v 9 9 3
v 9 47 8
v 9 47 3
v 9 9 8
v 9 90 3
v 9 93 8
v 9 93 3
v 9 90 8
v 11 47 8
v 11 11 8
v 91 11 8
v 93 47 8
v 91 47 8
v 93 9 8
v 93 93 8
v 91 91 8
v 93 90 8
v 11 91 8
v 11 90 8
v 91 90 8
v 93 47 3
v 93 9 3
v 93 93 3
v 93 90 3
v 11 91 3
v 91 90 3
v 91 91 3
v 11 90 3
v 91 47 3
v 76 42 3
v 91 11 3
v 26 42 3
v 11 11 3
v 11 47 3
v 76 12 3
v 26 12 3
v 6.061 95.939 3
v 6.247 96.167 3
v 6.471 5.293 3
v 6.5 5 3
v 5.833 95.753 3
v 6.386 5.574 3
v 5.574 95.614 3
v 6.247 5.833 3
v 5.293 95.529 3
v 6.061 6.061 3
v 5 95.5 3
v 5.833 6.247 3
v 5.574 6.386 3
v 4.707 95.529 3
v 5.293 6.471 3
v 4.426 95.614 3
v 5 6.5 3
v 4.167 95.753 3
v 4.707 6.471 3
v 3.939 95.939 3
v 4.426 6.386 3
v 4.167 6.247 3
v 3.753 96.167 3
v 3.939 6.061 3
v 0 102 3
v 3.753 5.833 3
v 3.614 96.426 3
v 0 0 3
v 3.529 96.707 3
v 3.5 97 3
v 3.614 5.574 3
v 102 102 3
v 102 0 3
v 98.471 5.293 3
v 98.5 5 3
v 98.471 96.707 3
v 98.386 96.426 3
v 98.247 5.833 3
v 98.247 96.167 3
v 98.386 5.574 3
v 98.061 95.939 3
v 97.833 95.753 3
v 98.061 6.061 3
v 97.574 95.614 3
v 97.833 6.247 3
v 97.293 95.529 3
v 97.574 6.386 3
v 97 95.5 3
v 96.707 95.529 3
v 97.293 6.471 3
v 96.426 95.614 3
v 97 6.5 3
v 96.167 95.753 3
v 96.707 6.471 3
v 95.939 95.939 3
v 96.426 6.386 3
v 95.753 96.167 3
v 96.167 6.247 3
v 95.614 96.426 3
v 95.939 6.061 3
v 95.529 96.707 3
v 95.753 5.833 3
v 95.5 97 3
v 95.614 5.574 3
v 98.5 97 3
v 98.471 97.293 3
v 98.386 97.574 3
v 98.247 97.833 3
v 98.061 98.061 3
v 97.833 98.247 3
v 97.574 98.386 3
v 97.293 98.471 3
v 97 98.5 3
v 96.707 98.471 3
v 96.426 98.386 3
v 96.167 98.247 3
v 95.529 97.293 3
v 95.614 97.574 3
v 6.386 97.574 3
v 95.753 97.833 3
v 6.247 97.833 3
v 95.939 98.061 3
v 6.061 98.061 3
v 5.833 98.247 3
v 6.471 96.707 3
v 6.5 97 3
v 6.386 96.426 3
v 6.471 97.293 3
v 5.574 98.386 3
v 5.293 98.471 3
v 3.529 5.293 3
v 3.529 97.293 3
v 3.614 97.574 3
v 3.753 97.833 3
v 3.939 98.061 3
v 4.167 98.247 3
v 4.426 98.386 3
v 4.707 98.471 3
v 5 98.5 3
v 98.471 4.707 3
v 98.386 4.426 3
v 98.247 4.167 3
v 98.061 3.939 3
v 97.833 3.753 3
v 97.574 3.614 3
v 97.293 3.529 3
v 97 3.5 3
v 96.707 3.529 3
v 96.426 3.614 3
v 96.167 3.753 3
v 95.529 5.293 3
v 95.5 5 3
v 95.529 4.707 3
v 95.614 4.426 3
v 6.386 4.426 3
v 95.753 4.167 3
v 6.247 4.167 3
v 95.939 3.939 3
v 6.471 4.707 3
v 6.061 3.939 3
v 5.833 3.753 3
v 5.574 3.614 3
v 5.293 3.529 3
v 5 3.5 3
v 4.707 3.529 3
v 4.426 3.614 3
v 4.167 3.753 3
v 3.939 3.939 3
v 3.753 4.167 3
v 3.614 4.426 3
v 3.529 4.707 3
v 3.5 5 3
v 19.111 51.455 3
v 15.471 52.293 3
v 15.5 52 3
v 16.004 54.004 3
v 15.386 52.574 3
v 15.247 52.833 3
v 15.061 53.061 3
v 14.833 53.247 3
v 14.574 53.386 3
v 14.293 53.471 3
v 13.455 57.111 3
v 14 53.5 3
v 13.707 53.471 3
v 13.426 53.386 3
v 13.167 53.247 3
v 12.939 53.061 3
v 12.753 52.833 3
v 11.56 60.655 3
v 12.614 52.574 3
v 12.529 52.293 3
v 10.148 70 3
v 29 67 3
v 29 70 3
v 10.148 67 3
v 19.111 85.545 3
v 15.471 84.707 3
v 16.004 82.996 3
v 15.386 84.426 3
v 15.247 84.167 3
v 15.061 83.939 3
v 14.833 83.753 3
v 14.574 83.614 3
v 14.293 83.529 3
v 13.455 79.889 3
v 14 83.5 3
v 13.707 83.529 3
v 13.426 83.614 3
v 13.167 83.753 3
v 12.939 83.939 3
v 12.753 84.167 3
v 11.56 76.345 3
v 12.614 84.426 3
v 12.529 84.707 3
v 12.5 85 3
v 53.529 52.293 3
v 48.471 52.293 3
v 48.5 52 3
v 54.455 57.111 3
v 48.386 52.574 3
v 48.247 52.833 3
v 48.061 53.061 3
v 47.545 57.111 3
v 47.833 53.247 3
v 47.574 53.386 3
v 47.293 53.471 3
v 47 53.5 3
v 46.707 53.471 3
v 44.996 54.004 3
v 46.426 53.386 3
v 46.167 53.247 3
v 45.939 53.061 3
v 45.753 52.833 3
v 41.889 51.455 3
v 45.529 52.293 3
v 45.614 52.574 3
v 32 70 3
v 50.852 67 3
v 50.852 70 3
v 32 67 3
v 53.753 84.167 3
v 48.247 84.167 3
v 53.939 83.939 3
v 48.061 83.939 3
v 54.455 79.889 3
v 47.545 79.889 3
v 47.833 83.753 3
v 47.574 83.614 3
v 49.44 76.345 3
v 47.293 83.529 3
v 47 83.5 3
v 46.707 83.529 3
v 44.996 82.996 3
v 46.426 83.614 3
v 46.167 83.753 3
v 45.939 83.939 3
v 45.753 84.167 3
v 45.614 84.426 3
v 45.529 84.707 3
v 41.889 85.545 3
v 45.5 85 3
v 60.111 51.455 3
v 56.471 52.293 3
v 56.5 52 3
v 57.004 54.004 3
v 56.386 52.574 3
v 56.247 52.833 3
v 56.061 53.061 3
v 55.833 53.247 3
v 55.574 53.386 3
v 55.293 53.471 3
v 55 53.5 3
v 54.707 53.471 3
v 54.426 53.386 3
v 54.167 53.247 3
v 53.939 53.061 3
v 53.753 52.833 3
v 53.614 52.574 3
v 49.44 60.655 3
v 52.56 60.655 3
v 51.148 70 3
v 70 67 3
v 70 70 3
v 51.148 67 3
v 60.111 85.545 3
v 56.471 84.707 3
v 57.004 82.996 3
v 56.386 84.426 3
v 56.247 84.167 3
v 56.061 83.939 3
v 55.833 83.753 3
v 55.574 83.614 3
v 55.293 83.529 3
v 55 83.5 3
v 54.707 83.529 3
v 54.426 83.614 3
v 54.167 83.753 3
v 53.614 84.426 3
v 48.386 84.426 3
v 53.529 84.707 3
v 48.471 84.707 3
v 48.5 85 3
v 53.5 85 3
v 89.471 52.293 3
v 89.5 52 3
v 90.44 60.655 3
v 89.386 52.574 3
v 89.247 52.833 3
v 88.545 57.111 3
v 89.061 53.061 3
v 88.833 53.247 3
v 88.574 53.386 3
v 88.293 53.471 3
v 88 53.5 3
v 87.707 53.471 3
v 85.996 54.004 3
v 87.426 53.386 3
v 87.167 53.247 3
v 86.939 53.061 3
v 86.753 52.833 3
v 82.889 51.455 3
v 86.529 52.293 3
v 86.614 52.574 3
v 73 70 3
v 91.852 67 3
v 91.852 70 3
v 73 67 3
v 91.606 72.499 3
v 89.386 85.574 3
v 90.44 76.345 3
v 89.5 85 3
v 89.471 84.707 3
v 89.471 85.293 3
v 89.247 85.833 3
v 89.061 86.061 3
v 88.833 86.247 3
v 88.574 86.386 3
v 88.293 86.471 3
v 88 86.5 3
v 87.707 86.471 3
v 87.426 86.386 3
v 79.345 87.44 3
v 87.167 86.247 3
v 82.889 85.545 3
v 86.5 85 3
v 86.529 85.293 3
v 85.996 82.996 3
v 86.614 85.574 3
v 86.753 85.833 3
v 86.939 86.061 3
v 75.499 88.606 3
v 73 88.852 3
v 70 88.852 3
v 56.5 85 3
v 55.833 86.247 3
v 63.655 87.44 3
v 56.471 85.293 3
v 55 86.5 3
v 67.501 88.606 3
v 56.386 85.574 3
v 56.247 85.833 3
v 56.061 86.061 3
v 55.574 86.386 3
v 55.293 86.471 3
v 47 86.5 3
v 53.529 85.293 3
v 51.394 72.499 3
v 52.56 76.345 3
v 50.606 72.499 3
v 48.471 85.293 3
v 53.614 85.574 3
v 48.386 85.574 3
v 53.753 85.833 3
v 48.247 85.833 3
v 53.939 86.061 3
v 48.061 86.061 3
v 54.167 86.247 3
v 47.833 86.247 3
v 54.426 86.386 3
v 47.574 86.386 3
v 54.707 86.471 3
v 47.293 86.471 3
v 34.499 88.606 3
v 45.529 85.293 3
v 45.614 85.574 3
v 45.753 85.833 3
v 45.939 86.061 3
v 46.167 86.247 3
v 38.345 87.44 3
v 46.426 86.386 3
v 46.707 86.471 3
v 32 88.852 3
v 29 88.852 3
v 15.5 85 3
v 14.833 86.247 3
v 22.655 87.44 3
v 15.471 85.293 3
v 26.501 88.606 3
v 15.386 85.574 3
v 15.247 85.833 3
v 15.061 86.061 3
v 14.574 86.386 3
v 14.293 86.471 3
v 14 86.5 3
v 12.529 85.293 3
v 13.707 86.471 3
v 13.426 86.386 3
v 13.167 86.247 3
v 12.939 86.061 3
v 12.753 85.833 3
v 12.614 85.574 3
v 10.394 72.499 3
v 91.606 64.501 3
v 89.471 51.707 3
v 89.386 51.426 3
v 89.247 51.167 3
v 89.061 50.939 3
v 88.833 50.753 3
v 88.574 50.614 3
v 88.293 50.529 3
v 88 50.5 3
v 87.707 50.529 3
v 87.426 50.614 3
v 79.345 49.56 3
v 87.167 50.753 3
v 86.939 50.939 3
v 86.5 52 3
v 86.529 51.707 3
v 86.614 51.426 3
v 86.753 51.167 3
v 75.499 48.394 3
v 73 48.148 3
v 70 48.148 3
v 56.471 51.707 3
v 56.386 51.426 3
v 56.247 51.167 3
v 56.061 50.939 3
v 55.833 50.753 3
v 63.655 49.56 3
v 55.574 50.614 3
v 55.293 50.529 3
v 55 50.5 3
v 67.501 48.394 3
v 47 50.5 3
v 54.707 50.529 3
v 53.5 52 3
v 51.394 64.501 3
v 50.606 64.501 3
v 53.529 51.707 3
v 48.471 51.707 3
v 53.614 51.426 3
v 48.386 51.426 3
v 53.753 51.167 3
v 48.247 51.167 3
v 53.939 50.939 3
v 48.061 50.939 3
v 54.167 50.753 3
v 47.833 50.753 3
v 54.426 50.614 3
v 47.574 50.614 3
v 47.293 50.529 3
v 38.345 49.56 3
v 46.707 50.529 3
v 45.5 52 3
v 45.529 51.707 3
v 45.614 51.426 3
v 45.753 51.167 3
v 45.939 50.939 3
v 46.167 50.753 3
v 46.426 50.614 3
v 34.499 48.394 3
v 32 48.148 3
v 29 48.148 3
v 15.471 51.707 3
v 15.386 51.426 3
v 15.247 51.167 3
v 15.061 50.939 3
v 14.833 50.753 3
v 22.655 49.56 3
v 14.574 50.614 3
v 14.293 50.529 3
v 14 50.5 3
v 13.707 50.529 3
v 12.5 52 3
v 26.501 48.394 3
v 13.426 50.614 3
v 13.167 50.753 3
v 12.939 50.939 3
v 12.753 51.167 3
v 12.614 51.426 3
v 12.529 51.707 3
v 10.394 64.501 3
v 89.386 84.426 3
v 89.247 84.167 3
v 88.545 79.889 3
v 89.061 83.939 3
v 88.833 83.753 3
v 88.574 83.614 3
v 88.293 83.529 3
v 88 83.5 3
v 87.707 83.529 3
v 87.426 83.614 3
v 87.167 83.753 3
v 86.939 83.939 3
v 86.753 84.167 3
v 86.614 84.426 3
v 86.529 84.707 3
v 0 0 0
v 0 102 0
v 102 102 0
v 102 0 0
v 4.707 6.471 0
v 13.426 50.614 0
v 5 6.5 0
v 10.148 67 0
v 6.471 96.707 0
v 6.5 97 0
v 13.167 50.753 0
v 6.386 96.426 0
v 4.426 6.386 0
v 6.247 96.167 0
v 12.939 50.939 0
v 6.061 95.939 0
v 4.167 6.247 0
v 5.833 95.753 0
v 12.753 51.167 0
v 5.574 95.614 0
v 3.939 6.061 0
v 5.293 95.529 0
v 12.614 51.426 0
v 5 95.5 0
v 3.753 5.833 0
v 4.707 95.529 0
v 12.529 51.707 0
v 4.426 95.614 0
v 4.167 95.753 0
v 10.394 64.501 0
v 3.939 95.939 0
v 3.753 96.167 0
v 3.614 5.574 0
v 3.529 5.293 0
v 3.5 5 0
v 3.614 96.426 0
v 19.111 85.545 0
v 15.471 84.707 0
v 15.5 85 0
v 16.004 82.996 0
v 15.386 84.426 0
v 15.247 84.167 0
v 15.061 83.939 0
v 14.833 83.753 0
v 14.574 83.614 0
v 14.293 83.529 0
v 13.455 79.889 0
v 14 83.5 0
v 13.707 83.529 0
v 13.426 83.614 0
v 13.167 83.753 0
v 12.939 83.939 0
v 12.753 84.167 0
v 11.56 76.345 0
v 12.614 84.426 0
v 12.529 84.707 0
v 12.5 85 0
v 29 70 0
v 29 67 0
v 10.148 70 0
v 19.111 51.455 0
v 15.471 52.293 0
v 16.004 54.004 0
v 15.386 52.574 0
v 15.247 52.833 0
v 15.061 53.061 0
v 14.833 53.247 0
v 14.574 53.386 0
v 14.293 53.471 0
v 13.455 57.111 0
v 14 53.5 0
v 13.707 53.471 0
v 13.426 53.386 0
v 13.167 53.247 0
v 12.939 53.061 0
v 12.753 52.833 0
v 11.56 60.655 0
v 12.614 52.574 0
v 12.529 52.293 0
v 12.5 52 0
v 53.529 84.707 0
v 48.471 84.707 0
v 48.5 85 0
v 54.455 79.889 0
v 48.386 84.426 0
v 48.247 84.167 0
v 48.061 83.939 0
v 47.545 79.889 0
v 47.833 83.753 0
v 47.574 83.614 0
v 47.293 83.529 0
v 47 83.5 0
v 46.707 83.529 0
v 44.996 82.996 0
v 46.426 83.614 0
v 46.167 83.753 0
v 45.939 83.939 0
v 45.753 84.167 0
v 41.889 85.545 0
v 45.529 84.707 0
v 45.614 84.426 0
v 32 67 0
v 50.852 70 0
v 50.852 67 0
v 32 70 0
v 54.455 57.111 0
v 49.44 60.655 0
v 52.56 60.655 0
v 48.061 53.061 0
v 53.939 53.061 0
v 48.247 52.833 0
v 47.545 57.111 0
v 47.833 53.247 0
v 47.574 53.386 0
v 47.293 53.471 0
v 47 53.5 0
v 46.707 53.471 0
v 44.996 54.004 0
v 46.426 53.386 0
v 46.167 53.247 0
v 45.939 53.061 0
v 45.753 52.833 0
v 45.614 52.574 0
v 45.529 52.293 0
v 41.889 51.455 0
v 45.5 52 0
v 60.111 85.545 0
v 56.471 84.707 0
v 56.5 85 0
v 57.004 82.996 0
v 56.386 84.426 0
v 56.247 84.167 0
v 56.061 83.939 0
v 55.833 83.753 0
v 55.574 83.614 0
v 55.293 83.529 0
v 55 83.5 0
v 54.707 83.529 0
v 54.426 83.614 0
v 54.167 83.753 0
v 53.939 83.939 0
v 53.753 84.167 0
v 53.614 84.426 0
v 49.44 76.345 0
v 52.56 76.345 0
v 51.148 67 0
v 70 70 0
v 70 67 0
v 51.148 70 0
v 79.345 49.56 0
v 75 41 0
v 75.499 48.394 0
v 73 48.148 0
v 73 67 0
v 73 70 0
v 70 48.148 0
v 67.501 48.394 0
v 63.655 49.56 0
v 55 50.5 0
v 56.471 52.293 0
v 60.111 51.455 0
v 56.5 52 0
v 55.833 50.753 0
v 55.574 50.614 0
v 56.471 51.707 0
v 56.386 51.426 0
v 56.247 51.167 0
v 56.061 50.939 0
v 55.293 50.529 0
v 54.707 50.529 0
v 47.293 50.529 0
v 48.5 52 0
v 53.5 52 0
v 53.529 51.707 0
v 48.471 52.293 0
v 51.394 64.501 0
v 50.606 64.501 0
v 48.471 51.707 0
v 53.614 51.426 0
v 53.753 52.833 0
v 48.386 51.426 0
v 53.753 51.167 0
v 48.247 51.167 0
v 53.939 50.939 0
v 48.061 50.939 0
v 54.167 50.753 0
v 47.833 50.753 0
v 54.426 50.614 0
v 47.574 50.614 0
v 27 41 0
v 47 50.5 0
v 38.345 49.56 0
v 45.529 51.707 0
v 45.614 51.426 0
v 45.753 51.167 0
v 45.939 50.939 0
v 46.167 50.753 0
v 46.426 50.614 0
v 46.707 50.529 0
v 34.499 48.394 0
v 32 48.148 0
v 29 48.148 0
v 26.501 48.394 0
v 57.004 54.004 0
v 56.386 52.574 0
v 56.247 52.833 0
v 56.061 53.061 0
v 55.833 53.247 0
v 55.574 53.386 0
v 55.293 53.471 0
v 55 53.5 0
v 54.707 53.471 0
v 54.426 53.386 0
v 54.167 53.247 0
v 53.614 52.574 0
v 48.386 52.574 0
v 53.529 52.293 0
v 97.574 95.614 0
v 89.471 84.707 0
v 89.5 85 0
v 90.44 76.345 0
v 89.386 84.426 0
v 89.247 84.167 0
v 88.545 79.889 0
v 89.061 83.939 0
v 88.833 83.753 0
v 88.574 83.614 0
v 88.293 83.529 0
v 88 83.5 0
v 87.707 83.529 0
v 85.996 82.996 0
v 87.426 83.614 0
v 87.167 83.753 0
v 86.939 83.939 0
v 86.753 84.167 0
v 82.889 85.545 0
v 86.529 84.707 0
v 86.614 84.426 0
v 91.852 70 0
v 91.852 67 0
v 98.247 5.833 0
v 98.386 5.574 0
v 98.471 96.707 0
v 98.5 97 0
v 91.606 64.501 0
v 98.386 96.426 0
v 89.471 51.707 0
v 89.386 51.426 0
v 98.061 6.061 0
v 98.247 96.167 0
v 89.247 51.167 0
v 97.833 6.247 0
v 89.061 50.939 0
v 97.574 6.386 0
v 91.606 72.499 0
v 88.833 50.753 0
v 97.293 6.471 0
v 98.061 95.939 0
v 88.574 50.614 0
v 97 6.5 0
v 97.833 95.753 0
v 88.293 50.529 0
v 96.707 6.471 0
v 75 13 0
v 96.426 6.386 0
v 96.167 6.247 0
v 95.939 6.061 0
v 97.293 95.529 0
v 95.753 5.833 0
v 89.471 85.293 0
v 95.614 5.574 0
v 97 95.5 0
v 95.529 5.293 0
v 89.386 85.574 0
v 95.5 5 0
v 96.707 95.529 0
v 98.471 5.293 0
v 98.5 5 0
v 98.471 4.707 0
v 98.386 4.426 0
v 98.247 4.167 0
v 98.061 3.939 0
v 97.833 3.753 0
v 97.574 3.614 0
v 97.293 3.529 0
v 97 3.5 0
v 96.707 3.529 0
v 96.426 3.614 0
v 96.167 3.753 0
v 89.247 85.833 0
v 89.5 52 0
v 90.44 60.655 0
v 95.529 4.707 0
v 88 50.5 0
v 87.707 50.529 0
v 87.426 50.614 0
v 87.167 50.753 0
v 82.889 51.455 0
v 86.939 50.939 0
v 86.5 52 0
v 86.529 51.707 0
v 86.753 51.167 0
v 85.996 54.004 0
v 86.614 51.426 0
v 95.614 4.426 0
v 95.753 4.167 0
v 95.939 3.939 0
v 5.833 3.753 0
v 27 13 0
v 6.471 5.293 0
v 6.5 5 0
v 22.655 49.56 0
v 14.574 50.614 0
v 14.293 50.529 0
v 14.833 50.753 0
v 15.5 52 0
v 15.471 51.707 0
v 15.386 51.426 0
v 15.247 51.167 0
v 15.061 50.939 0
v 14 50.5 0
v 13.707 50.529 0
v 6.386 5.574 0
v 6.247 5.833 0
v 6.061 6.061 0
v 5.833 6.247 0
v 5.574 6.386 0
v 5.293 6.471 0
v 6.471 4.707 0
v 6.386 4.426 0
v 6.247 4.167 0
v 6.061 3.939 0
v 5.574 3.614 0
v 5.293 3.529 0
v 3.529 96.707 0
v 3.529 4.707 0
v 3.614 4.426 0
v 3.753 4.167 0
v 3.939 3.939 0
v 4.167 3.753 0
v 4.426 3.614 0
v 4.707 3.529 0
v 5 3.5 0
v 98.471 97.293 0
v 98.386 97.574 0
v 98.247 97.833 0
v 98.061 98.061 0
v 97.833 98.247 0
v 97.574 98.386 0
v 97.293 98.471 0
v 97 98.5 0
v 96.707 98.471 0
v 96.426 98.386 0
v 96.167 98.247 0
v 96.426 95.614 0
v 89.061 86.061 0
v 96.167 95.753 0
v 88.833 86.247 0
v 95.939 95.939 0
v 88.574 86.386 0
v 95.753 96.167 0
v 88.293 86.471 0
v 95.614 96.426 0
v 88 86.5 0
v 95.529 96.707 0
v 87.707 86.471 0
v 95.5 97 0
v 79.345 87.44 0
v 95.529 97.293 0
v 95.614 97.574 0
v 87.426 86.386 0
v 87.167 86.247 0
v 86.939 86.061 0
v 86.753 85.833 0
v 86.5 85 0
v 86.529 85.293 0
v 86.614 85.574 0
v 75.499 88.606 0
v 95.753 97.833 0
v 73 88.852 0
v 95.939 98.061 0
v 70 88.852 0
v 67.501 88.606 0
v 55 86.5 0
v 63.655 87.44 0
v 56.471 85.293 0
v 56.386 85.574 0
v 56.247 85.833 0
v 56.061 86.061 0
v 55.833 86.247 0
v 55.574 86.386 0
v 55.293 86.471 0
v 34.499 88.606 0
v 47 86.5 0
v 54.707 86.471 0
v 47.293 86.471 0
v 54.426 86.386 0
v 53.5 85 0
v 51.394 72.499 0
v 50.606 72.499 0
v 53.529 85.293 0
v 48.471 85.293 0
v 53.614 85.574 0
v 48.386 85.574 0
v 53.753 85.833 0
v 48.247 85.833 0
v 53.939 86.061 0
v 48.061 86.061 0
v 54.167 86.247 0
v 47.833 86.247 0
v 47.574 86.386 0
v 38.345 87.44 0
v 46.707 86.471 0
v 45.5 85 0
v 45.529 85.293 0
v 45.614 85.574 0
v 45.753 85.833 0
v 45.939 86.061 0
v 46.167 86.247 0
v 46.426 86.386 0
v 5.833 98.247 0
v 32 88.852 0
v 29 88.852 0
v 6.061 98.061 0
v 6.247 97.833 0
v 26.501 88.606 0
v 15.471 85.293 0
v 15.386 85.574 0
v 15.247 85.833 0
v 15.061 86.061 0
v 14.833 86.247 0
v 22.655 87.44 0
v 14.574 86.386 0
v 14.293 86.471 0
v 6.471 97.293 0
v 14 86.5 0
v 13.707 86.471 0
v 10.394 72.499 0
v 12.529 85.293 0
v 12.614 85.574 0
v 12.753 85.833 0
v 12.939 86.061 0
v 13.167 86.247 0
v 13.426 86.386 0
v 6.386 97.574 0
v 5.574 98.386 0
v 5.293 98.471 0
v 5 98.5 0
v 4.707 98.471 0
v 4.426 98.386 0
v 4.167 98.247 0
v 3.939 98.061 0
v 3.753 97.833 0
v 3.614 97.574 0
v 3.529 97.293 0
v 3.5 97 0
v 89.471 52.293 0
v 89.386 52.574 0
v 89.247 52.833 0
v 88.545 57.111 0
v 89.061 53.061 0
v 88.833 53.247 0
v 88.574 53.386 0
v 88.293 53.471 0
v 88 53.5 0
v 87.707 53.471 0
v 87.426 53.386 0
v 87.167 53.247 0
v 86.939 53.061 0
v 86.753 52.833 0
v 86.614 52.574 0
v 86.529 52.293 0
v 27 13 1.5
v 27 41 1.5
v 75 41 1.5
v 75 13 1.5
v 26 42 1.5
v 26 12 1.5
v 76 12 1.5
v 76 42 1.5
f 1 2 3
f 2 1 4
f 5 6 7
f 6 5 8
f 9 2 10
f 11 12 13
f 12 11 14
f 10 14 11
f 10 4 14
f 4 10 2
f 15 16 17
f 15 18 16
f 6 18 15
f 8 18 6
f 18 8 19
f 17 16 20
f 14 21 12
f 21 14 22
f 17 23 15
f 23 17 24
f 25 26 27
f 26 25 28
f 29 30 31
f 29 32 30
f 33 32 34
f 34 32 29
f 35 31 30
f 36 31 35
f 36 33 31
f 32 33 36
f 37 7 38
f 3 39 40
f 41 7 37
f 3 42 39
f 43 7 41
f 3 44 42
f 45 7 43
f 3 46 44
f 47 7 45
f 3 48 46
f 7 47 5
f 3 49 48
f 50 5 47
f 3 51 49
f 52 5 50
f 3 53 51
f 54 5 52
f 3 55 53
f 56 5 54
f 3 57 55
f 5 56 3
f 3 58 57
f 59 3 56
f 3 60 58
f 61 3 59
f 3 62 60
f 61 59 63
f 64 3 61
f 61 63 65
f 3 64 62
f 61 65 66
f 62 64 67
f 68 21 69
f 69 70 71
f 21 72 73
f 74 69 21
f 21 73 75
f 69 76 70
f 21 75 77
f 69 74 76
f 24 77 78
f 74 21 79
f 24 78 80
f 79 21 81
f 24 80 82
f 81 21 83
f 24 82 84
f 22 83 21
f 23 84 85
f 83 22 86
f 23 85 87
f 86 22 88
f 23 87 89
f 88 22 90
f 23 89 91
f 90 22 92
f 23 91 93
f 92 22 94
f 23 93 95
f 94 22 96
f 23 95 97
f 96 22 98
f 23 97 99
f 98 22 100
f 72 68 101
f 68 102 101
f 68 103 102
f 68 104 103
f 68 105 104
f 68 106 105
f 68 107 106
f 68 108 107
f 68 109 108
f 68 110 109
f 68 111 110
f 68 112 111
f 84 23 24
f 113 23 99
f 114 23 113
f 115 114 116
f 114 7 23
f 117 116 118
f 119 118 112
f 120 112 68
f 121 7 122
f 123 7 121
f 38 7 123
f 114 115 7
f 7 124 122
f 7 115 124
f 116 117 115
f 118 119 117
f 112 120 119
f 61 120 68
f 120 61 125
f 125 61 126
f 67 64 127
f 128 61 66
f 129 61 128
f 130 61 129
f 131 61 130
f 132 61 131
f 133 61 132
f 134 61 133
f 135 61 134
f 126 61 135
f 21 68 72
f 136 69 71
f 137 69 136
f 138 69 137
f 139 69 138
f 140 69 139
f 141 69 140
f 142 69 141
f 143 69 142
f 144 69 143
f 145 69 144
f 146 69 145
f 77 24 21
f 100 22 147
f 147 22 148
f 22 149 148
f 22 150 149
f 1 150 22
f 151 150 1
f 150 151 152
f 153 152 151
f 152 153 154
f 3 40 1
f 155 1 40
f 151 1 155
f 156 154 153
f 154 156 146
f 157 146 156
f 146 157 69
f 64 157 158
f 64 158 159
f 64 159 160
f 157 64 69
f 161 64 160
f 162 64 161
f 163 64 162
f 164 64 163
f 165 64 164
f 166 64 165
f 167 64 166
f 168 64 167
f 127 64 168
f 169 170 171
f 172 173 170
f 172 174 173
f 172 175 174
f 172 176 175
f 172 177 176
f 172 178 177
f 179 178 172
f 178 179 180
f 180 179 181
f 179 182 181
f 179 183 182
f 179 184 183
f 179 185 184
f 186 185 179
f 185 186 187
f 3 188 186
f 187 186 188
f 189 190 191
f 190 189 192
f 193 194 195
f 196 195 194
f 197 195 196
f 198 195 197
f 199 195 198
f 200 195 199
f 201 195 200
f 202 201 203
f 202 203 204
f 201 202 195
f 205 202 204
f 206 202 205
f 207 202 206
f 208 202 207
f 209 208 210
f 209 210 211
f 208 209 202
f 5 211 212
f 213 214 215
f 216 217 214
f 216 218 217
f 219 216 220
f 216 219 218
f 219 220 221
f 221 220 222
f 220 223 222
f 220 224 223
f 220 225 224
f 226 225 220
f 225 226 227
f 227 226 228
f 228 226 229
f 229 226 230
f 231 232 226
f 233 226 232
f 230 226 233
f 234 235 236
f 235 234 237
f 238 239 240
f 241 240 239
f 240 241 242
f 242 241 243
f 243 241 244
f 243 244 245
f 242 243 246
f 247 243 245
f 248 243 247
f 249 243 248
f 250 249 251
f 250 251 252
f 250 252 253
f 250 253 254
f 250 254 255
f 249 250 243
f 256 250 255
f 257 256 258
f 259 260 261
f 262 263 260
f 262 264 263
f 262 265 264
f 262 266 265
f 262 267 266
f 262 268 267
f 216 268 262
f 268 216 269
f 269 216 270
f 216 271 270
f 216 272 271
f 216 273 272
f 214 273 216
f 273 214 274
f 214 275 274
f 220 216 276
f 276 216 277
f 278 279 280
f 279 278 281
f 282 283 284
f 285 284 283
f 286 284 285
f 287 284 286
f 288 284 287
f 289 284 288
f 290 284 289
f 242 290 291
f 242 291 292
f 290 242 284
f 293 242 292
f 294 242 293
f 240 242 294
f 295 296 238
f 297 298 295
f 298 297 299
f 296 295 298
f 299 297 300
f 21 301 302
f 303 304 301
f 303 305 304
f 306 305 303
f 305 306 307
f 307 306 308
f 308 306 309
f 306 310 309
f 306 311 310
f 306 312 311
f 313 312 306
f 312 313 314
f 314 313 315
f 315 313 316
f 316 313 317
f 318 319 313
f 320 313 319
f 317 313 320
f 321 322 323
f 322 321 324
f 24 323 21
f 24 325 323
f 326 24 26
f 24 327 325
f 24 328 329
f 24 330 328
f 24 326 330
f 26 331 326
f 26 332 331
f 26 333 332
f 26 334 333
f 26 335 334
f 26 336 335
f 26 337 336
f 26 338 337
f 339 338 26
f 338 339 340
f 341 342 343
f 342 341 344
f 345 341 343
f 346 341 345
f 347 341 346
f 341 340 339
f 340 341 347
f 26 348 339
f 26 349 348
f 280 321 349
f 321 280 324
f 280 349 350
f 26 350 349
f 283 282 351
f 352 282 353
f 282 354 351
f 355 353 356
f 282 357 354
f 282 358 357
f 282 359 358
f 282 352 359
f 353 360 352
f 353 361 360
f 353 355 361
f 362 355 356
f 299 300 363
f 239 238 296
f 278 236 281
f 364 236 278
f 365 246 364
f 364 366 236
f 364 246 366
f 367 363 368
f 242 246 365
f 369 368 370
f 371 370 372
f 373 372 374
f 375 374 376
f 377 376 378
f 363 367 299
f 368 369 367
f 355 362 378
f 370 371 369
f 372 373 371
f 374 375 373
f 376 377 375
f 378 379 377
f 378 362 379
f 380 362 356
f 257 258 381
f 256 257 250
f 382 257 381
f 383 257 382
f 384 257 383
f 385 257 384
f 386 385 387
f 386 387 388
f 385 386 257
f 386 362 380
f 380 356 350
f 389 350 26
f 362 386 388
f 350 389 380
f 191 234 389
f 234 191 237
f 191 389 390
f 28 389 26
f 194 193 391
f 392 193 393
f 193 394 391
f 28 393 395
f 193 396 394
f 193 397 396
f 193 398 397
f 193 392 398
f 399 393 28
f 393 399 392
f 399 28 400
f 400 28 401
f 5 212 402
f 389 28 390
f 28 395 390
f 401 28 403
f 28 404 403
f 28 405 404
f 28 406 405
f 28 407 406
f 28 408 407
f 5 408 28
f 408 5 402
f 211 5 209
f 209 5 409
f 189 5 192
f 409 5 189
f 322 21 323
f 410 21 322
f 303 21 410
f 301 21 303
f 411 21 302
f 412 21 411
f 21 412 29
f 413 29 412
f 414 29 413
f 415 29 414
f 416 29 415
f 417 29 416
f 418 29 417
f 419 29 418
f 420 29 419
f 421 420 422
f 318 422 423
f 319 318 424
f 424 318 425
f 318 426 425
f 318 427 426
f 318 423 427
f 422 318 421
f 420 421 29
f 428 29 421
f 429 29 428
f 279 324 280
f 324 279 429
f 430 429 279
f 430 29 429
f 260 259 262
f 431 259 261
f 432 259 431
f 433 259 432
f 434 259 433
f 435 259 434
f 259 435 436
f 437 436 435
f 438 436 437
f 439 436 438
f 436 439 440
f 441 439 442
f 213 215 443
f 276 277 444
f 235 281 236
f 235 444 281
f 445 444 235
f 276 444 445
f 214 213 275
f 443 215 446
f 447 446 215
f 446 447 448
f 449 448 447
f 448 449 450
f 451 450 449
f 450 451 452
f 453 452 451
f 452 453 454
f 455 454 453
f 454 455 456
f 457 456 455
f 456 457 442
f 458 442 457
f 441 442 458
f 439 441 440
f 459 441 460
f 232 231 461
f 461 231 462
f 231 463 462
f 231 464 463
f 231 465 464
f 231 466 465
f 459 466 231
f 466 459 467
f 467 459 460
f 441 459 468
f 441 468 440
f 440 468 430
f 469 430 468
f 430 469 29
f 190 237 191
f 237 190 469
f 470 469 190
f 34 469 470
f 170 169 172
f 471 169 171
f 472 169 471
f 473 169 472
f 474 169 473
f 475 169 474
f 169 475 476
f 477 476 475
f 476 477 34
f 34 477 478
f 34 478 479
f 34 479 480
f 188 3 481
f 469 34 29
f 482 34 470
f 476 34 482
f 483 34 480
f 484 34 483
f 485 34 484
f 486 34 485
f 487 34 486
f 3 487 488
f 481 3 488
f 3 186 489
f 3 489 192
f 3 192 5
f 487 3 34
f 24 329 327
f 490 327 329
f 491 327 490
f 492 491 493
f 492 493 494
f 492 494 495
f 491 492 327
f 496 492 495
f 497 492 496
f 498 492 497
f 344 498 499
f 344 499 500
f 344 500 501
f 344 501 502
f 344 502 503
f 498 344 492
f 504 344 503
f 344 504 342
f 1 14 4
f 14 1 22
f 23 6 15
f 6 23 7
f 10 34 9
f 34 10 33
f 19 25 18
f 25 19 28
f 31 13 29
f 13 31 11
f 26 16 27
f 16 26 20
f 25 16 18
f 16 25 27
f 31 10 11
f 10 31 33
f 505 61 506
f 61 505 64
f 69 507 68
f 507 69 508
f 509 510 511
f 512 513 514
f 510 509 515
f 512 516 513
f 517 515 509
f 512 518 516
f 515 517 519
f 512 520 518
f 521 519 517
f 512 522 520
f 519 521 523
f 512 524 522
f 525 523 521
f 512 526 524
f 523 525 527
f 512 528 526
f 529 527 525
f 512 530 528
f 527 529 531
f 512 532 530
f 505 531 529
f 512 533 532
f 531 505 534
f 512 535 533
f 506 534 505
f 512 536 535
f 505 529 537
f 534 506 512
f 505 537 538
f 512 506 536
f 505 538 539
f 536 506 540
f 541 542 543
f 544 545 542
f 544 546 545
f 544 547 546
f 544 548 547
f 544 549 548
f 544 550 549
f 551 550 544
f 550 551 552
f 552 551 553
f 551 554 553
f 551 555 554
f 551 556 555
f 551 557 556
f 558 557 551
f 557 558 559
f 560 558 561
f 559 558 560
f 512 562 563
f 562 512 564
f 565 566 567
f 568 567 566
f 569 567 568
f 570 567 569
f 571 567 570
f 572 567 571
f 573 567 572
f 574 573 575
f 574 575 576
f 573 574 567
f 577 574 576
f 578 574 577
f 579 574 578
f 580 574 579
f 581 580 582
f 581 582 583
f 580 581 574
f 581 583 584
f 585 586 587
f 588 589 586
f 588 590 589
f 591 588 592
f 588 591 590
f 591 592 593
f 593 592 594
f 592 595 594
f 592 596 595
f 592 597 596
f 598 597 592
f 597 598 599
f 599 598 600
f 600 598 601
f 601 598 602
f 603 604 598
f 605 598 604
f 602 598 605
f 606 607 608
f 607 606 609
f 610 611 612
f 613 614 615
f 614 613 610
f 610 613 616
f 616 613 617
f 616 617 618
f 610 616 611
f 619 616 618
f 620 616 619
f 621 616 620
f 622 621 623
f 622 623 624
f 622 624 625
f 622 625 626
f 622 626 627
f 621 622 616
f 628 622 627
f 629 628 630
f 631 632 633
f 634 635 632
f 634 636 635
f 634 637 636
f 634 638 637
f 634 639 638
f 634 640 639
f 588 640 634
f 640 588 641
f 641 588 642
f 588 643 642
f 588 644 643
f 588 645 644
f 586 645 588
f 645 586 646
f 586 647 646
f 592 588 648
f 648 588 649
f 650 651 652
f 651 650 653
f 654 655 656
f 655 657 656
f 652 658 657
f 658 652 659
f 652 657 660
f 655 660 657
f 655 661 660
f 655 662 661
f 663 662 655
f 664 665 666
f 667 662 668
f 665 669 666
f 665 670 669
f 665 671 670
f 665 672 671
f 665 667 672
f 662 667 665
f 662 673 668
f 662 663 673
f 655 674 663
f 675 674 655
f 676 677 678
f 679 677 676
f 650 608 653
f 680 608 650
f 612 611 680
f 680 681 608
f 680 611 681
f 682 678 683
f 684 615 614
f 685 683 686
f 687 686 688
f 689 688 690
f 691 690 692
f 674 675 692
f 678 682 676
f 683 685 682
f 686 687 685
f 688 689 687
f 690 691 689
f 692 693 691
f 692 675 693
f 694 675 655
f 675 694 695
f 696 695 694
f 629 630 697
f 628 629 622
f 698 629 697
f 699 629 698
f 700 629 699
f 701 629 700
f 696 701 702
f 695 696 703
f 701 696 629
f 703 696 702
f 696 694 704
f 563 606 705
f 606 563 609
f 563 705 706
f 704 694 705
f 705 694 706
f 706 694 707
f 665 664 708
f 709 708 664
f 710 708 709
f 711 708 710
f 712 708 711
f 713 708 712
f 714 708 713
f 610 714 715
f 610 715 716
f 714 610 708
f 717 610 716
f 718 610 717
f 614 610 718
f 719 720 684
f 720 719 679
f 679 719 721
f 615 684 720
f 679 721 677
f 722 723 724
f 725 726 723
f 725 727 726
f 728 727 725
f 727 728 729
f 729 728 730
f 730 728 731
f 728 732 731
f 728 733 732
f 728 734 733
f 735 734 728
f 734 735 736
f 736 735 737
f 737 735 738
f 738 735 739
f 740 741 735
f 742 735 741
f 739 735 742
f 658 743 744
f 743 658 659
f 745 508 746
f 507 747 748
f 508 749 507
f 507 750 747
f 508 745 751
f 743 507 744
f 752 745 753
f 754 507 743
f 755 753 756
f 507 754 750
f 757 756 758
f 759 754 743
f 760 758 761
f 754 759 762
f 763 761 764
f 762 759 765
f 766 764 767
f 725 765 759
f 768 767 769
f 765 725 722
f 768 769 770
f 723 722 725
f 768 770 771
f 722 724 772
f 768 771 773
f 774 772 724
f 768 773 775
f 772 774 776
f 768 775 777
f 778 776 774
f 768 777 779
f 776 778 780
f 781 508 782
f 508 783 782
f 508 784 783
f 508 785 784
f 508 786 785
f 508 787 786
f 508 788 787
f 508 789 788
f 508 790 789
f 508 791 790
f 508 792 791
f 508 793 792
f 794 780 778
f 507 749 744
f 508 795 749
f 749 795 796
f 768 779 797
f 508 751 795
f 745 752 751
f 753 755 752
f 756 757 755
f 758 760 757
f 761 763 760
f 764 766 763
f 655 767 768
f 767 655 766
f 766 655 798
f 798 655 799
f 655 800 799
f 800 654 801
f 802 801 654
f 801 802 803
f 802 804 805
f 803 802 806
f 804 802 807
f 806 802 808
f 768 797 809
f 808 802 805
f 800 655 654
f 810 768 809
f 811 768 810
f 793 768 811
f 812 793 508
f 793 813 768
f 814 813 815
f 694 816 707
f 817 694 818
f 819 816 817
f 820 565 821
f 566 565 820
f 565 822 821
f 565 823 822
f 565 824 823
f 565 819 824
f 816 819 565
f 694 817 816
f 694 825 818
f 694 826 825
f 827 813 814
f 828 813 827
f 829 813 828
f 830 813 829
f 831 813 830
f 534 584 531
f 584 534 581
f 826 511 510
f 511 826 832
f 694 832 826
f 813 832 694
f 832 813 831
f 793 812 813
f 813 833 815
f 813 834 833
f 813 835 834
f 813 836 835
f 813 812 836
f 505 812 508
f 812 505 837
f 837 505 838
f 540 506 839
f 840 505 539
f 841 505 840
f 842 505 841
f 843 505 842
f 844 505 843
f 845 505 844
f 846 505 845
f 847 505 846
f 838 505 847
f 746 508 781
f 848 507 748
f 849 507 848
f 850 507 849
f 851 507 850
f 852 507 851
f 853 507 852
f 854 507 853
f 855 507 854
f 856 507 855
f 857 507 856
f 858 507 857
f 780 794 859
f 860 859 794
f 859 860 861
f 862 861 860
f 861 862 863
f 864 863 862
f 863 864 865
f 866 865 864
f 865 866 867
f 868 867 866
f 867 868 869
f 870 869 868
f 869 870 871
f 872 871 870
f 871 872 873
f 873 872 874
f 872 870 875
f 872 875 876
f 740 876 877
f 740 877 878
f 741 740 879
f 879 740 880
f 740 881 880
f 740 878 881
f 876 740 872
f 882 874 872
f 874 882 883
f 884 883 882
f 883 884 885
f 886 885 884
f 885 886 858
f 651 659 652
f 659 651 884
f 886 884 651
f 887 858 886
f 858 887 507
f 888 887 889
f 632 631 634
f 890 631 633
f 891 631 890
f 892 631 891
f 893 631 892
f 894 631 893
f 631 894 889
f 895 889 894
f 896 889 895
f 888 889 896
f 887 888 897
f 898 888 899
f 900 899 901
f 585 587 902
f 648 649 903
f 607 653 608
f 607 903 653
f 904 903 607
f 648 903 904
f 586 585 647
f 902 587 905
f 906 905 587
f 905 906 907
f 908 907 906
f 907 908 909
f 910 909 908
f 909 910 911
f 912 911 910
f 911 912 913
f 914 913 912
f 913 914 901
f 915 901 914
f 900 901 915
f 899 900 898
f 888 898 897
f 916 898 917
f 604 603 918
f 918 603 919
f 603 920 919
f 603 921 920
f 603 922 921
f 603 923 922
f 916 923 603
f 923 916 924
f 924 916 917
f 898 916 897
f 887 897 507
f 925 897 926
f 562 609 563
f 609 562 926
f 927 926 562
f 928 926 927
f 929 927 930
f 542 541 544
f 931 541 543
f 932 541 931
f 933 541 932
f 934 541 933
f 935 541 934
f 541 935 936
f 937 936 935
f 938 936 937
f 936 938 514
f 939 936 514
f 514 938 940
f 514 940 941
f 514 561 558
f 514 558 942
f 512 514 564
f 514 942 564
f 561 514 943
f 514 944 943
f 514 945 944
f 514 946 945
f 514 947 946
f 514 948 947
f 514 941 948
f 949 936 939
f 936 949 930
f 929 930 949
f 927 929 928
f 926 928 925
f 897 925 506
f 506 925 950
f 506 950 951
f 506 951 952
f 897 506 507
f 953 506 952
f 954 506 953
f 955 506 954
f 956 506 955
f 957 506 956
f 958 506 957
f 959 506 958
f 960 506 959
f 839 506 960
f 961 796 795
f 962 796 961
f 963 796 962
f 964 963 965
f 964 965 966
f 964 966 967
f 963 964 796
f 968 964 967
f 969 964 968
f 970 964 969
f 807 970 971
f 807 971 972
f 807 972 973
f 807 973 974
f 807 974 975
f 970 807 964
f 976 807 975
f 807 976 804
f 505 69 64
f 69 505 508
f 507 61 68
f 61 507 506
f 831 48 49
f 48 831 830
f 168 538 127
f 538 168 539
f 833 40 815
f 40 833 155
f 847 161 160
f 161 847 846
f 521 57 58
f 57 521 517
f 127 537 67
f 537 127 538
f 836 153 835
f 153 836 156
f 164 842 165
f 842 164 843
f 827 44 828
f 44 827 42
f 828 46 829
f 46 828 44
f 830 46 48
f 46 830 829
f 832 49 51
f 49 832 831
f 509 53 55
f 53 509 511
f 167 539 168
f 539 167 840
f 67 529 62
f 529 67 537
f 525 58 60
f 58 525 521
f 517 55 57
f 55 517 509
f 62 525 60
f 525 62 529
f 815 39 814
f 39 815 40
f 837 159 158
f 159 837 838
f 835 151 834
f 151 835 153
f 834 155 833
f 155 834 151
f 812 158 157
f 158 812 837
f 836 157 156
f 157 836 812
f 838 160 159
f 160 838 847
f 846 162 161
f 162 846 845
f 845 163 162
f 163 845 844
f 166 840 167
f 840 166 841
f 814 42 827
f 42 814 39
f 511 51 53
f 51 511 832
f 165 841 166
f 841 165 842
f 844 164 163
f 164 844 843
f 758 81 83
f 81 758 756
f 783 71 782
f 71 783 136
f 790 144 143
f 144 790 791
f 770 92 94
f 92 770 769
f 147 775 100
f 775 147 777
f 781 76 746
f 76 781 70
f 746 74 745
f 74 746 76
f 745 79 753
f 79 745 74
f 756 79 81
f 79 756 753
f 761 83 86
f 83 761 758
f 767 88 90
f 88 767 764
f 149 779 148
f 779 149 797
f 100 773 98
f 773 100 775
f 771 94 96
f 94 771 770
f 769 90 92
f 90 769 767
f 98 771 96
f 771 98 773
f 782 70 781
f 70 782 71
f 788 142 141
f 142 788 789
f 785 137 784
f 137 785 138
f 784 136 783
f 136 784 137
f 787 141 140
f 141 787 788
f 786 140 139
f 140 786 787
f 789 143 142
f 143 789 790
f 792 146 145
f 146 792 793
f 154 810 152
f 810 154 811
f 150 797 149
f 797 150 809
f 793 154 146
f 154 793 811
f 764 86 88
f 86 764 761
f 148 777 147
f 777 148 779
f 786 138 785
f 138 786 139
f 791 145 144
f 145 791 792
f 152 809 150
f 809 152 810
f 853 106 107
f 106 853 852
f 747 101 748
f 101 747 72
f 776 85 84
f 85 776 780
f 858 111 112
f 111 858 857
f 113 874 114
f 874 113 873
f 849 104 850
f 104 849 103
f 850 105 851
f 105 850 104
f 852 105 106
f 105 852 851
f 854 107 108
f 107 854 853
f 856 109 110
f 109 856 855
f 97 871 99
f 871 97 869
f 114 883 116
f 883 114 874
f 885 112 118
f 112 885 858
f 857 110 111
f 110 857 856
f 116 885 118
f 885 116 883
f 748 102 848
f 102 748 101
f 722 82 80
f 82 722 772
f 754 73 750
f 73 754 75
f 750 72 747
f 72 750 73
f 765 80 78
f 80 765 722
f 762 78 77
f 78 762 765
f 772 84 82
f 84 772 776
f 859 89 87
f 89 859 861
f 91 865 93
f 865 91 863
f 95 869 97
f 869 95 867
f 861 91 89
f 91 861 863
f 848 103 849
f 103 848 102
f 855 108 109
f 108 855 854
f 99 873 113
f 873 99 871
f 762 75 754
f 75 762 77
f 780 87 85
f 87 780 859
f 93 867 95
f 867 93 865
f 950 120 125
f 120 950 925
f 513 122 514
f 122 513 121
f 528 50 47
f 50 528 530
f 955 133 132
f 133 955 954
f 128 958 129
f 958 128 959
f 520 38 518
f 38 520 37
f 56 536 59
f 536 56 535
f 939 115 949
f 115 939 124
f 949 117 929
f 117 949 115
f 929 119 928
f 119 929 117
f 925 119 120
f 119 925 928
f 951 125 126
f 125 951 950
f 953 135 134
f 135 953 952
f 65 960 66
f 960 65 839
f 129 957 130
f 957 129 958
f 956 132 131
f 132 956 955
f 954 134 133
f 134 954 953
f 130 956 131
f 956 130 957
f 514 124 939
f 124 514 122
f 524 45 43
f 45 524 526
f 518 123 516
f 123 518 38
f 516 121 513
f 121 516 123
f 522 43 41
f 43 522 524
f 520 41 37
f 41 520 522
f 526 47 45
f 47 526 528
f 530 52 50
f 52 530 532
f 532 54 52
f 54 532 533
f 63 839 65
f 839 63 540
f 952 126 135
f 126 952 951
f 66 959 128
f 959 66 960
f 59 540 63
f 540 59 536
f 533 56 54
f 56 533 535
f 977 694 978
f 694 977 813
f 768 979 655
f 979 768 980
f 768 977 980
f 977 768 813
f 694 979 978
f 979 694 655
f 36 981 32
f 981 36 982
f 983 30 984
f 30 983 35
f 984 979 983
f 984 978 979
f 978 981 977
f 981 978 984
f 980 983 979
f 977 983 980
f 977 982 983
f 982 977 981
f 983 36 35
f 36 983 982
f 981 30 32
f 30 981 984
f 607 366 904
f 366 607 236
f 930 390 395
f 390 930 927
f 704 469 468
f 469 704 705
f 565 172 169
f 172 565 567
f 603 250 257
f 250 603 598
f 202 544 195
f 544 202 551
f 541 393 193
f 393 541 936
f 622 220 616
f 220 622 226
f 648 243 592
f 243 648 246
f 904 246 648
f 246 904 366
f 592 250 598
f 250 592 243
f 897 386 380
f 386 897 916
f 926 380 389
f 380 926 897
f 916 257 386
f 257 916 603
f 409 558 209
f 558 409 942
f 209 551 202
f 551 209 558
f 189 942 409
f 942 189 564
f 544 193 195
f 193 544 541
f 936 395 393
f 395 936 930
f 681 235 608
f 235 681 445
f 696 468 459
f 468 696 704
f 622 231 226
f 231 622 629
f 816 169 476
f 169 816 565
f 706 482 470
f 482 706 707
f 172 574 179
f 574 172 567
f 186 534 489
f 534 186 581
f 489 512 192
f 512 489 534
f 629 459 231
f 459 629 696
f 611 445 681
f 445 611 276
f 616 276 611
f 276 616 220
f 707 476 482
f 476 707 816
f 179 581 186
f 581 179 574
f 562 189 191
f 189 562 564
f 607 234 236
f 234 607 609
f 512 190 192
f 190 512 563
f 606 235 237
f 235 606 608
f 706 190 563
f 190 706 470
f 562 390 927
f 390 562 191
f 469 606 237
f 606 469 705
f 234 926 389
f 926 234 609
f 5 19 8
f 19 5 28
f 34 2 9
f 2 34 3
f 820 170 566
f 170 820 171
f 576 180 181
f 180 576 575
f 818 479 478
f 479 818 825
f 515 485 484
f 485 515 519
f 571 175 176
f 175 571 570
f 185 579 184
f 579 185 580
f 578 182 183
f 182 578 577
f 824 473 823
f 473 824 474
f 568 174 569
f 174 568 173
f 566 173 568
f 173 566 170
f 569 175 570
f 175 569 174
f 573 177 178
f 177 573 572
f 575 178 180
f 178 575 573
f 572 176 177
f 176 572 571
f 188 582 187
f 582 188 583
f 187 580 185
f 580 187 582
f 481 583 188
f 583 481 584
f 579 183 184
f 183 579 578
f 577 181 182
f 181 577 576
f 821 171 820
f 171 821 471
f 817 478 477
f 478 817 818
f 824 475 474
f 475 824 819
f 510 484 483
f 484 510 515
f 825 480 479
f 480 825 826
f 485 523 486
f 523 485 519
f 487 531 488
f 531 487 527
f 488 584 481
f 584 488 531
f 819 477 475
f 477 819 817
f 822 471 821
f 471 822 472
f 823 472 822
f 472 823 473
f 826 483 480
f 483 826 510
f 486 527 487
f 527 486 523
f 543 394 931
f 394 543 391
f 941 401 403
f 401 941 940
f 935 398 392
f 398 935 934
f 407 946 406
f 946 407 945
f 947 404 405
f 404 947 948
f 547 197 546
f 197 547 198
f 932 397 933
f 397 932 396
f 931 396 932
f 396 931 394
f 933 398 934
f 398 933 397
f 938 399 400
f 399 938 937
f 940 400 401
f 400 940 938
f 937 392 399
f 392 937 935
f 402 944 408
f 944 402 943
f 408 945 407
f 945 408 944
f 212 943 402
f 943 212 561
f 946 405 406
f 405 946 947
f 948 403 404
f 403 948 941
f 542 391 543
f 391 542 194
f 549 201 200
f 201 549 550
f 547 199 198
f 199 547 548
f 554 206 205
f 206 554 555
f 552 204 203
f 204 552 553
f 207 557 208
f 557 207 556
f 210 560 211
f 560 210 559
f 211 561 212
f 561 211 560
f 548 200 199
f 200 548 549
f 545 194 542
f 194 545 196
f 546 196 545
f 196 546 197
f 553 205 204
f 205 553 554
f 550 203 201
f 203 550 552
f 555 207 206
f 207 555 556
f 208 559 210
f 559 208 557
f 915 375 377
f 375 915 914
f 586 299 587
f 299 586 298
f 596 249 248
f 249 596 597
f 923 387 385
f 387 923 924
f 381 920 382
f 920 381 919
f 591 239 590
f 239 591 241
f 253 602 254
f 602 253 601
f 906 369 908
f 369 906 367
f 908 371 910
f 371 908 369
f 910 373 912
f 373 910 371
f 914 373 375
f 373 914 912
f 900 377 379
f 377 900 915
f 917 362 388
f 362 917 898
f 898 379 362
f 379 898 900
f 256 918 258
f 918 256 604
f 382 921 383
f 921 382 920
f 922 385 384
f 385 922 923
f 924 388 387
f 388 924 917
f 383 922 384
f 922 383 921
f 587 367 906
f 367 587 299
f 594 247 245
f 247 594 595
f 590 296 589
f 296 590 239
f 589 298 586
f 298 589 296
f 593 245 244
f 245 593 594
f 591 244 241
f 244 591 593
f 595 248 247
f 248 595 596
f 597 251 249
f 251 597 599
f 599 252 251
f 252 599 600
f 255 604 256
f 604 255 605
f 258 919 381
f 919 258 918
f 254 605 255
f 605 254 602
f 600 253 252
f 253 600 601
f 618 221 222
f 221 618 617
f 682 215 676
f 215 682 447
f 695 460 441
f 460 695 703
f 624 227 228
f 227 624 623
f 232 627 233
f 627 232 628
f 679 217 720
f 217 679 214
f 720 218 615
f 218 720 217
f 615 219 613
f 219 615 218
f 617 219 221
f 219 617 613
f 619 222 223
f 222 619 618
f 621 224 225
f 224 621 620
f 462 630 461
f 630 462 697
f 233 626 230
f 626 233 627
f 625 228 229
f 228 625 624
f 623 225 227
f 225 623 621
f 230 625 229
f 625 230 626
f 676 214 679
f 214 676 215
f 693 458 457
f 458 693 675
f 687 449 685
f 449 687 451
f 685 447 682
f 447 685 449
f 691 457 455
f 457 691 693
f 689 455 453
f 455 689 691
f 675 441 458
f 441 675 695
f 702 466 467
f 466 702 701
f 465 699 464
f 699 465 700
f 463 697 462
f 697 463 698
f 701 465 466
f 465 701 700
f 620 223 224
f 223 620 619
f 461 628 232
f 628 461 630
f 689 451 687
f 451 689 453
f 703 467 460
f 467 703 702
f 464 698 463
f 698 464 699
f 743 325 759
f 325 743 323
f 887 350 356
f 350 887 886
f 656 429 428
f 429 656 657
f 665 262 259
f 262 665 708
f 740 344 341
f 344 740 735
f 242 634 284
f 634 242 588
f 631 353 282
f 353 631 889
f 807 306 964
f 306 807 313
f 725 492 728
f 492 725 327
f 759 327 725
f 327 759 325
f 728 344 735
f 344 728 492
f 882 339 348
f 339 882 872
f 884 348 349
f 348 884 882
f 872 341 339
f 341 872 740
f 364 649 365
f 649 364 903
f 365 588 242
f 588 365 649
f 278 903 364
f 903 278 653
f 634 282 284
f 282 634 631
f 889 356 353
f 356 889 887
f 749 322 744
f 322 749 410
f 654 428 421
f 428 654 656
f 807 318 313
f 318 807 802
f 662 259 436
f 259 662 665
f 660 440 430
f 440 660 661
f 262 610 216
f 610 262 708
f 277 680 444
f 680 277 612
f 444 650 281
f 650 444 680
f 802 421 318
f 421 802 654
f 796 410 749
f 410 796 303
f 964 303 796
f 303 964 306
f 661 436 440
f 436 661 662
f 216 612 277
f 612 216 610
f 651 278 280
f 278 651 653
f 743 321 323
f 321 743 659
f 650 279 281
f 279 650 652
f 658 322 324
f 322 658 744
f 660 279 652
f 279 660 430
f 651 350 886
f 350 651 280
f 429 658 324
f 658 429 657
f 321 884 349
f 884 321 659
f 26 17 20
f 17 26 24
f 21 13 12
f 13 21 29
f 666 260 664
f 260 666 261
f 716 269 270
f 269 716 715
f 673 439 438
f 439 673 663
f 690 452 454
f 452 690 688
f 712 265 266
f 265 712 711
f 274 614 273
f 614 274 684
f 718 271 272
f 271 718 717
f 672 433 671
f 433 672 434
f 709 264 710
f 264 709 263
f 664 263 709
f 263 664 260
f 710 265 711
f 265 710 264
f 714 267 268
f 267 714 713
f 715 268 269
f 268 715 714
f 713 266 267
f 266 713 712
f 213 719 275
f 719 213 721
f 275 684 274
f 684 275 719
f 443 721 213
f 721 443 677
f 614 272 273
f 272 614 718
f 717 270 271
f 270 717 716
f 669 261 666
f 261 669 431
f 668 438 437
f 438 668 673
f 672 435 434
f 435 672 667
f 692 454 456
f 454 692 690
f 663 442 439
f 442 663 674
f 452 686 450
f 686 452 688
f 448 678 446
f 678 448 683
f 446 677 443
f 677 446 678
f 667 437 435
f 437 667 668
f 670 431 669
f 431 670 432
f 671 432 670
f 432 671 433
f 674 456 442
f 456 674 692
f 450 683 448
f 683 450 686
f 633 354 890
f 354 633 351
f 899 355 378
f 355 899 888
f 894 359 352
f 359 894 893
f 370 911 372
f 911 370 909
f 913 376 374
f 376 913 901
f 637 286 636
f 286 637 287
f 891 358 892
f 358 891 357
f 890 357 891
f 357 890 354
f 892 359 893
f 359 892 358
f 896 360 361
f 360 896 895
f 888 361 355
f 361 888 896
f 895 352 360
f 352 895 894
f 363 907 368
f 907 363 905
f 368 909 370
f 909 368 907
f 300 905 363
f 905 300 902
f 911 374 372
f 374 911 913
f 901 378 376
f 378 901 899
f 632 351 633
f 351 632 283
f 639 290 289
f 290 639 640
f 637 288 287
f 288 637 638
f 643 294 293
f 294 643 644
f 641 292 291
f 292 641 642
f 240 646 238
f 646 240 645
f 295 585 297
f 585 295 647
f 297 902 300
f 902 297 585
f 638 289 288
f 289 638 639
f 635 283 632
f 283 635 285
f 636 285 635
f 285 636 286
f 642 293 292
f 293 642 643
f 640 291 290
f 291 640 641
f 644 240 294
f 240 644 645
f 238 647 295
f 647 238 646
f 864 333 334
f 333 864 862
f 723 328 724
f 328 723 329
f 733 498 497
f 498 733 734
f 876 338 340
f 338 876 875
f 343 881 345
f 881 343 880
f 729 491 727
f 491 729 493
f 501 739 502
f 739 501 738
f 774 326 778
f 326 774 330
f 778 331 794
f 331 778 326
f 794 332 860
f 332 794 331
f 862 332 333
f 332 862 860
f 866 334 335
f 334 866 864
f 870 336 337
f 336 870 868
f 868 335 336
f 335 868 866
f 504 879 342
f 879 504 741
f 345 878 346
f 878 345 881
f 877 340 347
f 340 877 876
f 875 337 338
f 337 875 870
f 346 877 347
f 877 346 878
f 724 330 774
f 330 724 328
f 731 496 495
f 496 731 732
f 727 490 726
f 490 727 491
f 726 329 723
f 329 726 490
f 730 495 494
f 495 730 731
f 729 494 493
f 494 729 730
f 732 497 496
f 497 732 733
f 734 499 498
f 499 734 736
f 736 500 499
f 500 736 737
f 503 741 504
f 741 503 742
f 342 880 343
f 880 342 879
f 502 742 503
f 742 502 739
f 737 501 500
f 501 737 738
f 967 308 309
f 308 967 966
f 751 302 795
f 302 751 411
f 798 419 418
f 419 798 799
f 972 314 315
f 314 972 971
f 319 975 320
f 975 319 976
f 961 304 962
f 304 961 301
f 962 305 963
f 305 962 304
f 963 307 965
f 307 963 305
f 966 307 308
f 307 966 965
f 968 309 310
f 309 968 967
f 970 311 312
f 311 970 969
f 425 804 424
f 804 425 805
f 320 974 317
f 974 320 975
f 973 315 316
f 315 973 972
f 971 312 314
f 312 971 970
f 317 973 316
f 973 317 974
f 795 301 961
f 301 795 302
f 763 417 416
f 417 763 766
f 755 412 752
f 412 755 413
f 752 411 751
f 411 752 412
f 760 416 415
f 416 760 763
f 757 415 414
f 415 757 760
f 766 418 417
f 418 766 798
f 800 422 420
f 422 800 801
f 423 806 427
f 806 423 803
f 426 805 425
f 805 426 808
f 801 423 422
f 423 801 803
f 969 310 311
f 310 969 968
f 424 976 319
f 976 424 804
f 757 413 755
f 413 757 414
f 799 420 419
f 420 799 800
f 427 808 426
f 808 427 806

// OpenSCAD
fn = 32;
inzetW = 84;
inzetH = 84;
inzetDikte = 5;
frontW = 102;
frontH = 102;
frontDikte = 3;
bd = 2;

powerW = 48;
powerH = 28;

fanW = 41;
fanH = 41;

module front() {
    schroefD = 3;
    dx = (frontW - inzetW) / 2;
    dy = (frontH - inzetH) / 2;
    dz = (frontDikte);
    gatX = 5;
    gatY = 5;
    difference() {
        union() {
            cube([frontW, frontH, frontDikte]);
            translate([dx, dy, dz])
                difference() {
                    cube([inzetW, inzetH, inzetDikte]);
                    translate([bd,bd,0])
                        cube([inzetW-bd*2, inzetH-bd*2, inzetDikte]);
                }
        }
        union() {
            translate([gatX,gatY,0])
                cylinder(d=schroefD, h=dz, $fn=fn);
            translate([frontW-(gatX),gatY,0])
                cylinder(d=schroefD, h=dz, $fn=fn);
            translate([frontW-(gatX),(frontH-(gatY)),0])
                cylinder(d=schroefD, h=dz, $fn=fn);
            translate([gatX,(frontH-(gatY)),0])
                cylinder(d=schroefD, h=dz, $fn=fn);
        }
    }
}

module powerGat() {
    union() {
        cube([powerW, powerH, frontDikte]);
        translate([-1, -1, 1.5])
            cube([powerW+2, powerH+2, frontDikte-1.5]);
    }
}

module fanGat() {
    gatOfs = 4;
    gatD = 3;
    barD = 3;
    union() {
        difference() {
            translate([fanW/2, fanH/2, 0])
                cylinder(d=fanW, h=frontDikte, $fn=fn);
            translate([0, (fanH - barD) / 2, 0])
                cube([fanW, barD, frontDikte]);
            translate([(fanW - barD) / 2, 0, 0])
                cube([barD, fanH, frontDikte]);
        }
        translate([-1, -1, frontDikte])
            cube([fanW+2, fanH+2, inzetDikte]);
        translate([gatOfs, gatOfs, 0])
            cylinder(d=gatD, h=frontDikte, $fn=fn);
        translate([gatOfs, fanH - gatOfs, 0])
            cylinder(d=gatD, h=frontDikte, $fn=fn);
        translate([fanW - gatOfs, fanH - gatOfs, 0])
            cylinder(d=gatD, h=frontDikte, $fn=fn);
        translate([fanW - gatOfs, gatOfs, 0])
            cylinder(d=gatD, h=frontDikte, $fn=fn);
    }
}

module all() {
    fanY = frontH - (((frontH - inzetH) / 2) + bd + fanH + 2);
    difference() {
        union() {
            front();
        }
        translate([(frontW - powerW) / 2, ((frontH - inzetH) / 2) + bd + 2, 0])
            powerGat();
        translate([(frontW / 2) - fanW, fanY, 0])
            fanGat();
        translate([(frontW / 2) + 0, fanY, 0])
            fanGat();
    }
}

//fanGat();
all();
